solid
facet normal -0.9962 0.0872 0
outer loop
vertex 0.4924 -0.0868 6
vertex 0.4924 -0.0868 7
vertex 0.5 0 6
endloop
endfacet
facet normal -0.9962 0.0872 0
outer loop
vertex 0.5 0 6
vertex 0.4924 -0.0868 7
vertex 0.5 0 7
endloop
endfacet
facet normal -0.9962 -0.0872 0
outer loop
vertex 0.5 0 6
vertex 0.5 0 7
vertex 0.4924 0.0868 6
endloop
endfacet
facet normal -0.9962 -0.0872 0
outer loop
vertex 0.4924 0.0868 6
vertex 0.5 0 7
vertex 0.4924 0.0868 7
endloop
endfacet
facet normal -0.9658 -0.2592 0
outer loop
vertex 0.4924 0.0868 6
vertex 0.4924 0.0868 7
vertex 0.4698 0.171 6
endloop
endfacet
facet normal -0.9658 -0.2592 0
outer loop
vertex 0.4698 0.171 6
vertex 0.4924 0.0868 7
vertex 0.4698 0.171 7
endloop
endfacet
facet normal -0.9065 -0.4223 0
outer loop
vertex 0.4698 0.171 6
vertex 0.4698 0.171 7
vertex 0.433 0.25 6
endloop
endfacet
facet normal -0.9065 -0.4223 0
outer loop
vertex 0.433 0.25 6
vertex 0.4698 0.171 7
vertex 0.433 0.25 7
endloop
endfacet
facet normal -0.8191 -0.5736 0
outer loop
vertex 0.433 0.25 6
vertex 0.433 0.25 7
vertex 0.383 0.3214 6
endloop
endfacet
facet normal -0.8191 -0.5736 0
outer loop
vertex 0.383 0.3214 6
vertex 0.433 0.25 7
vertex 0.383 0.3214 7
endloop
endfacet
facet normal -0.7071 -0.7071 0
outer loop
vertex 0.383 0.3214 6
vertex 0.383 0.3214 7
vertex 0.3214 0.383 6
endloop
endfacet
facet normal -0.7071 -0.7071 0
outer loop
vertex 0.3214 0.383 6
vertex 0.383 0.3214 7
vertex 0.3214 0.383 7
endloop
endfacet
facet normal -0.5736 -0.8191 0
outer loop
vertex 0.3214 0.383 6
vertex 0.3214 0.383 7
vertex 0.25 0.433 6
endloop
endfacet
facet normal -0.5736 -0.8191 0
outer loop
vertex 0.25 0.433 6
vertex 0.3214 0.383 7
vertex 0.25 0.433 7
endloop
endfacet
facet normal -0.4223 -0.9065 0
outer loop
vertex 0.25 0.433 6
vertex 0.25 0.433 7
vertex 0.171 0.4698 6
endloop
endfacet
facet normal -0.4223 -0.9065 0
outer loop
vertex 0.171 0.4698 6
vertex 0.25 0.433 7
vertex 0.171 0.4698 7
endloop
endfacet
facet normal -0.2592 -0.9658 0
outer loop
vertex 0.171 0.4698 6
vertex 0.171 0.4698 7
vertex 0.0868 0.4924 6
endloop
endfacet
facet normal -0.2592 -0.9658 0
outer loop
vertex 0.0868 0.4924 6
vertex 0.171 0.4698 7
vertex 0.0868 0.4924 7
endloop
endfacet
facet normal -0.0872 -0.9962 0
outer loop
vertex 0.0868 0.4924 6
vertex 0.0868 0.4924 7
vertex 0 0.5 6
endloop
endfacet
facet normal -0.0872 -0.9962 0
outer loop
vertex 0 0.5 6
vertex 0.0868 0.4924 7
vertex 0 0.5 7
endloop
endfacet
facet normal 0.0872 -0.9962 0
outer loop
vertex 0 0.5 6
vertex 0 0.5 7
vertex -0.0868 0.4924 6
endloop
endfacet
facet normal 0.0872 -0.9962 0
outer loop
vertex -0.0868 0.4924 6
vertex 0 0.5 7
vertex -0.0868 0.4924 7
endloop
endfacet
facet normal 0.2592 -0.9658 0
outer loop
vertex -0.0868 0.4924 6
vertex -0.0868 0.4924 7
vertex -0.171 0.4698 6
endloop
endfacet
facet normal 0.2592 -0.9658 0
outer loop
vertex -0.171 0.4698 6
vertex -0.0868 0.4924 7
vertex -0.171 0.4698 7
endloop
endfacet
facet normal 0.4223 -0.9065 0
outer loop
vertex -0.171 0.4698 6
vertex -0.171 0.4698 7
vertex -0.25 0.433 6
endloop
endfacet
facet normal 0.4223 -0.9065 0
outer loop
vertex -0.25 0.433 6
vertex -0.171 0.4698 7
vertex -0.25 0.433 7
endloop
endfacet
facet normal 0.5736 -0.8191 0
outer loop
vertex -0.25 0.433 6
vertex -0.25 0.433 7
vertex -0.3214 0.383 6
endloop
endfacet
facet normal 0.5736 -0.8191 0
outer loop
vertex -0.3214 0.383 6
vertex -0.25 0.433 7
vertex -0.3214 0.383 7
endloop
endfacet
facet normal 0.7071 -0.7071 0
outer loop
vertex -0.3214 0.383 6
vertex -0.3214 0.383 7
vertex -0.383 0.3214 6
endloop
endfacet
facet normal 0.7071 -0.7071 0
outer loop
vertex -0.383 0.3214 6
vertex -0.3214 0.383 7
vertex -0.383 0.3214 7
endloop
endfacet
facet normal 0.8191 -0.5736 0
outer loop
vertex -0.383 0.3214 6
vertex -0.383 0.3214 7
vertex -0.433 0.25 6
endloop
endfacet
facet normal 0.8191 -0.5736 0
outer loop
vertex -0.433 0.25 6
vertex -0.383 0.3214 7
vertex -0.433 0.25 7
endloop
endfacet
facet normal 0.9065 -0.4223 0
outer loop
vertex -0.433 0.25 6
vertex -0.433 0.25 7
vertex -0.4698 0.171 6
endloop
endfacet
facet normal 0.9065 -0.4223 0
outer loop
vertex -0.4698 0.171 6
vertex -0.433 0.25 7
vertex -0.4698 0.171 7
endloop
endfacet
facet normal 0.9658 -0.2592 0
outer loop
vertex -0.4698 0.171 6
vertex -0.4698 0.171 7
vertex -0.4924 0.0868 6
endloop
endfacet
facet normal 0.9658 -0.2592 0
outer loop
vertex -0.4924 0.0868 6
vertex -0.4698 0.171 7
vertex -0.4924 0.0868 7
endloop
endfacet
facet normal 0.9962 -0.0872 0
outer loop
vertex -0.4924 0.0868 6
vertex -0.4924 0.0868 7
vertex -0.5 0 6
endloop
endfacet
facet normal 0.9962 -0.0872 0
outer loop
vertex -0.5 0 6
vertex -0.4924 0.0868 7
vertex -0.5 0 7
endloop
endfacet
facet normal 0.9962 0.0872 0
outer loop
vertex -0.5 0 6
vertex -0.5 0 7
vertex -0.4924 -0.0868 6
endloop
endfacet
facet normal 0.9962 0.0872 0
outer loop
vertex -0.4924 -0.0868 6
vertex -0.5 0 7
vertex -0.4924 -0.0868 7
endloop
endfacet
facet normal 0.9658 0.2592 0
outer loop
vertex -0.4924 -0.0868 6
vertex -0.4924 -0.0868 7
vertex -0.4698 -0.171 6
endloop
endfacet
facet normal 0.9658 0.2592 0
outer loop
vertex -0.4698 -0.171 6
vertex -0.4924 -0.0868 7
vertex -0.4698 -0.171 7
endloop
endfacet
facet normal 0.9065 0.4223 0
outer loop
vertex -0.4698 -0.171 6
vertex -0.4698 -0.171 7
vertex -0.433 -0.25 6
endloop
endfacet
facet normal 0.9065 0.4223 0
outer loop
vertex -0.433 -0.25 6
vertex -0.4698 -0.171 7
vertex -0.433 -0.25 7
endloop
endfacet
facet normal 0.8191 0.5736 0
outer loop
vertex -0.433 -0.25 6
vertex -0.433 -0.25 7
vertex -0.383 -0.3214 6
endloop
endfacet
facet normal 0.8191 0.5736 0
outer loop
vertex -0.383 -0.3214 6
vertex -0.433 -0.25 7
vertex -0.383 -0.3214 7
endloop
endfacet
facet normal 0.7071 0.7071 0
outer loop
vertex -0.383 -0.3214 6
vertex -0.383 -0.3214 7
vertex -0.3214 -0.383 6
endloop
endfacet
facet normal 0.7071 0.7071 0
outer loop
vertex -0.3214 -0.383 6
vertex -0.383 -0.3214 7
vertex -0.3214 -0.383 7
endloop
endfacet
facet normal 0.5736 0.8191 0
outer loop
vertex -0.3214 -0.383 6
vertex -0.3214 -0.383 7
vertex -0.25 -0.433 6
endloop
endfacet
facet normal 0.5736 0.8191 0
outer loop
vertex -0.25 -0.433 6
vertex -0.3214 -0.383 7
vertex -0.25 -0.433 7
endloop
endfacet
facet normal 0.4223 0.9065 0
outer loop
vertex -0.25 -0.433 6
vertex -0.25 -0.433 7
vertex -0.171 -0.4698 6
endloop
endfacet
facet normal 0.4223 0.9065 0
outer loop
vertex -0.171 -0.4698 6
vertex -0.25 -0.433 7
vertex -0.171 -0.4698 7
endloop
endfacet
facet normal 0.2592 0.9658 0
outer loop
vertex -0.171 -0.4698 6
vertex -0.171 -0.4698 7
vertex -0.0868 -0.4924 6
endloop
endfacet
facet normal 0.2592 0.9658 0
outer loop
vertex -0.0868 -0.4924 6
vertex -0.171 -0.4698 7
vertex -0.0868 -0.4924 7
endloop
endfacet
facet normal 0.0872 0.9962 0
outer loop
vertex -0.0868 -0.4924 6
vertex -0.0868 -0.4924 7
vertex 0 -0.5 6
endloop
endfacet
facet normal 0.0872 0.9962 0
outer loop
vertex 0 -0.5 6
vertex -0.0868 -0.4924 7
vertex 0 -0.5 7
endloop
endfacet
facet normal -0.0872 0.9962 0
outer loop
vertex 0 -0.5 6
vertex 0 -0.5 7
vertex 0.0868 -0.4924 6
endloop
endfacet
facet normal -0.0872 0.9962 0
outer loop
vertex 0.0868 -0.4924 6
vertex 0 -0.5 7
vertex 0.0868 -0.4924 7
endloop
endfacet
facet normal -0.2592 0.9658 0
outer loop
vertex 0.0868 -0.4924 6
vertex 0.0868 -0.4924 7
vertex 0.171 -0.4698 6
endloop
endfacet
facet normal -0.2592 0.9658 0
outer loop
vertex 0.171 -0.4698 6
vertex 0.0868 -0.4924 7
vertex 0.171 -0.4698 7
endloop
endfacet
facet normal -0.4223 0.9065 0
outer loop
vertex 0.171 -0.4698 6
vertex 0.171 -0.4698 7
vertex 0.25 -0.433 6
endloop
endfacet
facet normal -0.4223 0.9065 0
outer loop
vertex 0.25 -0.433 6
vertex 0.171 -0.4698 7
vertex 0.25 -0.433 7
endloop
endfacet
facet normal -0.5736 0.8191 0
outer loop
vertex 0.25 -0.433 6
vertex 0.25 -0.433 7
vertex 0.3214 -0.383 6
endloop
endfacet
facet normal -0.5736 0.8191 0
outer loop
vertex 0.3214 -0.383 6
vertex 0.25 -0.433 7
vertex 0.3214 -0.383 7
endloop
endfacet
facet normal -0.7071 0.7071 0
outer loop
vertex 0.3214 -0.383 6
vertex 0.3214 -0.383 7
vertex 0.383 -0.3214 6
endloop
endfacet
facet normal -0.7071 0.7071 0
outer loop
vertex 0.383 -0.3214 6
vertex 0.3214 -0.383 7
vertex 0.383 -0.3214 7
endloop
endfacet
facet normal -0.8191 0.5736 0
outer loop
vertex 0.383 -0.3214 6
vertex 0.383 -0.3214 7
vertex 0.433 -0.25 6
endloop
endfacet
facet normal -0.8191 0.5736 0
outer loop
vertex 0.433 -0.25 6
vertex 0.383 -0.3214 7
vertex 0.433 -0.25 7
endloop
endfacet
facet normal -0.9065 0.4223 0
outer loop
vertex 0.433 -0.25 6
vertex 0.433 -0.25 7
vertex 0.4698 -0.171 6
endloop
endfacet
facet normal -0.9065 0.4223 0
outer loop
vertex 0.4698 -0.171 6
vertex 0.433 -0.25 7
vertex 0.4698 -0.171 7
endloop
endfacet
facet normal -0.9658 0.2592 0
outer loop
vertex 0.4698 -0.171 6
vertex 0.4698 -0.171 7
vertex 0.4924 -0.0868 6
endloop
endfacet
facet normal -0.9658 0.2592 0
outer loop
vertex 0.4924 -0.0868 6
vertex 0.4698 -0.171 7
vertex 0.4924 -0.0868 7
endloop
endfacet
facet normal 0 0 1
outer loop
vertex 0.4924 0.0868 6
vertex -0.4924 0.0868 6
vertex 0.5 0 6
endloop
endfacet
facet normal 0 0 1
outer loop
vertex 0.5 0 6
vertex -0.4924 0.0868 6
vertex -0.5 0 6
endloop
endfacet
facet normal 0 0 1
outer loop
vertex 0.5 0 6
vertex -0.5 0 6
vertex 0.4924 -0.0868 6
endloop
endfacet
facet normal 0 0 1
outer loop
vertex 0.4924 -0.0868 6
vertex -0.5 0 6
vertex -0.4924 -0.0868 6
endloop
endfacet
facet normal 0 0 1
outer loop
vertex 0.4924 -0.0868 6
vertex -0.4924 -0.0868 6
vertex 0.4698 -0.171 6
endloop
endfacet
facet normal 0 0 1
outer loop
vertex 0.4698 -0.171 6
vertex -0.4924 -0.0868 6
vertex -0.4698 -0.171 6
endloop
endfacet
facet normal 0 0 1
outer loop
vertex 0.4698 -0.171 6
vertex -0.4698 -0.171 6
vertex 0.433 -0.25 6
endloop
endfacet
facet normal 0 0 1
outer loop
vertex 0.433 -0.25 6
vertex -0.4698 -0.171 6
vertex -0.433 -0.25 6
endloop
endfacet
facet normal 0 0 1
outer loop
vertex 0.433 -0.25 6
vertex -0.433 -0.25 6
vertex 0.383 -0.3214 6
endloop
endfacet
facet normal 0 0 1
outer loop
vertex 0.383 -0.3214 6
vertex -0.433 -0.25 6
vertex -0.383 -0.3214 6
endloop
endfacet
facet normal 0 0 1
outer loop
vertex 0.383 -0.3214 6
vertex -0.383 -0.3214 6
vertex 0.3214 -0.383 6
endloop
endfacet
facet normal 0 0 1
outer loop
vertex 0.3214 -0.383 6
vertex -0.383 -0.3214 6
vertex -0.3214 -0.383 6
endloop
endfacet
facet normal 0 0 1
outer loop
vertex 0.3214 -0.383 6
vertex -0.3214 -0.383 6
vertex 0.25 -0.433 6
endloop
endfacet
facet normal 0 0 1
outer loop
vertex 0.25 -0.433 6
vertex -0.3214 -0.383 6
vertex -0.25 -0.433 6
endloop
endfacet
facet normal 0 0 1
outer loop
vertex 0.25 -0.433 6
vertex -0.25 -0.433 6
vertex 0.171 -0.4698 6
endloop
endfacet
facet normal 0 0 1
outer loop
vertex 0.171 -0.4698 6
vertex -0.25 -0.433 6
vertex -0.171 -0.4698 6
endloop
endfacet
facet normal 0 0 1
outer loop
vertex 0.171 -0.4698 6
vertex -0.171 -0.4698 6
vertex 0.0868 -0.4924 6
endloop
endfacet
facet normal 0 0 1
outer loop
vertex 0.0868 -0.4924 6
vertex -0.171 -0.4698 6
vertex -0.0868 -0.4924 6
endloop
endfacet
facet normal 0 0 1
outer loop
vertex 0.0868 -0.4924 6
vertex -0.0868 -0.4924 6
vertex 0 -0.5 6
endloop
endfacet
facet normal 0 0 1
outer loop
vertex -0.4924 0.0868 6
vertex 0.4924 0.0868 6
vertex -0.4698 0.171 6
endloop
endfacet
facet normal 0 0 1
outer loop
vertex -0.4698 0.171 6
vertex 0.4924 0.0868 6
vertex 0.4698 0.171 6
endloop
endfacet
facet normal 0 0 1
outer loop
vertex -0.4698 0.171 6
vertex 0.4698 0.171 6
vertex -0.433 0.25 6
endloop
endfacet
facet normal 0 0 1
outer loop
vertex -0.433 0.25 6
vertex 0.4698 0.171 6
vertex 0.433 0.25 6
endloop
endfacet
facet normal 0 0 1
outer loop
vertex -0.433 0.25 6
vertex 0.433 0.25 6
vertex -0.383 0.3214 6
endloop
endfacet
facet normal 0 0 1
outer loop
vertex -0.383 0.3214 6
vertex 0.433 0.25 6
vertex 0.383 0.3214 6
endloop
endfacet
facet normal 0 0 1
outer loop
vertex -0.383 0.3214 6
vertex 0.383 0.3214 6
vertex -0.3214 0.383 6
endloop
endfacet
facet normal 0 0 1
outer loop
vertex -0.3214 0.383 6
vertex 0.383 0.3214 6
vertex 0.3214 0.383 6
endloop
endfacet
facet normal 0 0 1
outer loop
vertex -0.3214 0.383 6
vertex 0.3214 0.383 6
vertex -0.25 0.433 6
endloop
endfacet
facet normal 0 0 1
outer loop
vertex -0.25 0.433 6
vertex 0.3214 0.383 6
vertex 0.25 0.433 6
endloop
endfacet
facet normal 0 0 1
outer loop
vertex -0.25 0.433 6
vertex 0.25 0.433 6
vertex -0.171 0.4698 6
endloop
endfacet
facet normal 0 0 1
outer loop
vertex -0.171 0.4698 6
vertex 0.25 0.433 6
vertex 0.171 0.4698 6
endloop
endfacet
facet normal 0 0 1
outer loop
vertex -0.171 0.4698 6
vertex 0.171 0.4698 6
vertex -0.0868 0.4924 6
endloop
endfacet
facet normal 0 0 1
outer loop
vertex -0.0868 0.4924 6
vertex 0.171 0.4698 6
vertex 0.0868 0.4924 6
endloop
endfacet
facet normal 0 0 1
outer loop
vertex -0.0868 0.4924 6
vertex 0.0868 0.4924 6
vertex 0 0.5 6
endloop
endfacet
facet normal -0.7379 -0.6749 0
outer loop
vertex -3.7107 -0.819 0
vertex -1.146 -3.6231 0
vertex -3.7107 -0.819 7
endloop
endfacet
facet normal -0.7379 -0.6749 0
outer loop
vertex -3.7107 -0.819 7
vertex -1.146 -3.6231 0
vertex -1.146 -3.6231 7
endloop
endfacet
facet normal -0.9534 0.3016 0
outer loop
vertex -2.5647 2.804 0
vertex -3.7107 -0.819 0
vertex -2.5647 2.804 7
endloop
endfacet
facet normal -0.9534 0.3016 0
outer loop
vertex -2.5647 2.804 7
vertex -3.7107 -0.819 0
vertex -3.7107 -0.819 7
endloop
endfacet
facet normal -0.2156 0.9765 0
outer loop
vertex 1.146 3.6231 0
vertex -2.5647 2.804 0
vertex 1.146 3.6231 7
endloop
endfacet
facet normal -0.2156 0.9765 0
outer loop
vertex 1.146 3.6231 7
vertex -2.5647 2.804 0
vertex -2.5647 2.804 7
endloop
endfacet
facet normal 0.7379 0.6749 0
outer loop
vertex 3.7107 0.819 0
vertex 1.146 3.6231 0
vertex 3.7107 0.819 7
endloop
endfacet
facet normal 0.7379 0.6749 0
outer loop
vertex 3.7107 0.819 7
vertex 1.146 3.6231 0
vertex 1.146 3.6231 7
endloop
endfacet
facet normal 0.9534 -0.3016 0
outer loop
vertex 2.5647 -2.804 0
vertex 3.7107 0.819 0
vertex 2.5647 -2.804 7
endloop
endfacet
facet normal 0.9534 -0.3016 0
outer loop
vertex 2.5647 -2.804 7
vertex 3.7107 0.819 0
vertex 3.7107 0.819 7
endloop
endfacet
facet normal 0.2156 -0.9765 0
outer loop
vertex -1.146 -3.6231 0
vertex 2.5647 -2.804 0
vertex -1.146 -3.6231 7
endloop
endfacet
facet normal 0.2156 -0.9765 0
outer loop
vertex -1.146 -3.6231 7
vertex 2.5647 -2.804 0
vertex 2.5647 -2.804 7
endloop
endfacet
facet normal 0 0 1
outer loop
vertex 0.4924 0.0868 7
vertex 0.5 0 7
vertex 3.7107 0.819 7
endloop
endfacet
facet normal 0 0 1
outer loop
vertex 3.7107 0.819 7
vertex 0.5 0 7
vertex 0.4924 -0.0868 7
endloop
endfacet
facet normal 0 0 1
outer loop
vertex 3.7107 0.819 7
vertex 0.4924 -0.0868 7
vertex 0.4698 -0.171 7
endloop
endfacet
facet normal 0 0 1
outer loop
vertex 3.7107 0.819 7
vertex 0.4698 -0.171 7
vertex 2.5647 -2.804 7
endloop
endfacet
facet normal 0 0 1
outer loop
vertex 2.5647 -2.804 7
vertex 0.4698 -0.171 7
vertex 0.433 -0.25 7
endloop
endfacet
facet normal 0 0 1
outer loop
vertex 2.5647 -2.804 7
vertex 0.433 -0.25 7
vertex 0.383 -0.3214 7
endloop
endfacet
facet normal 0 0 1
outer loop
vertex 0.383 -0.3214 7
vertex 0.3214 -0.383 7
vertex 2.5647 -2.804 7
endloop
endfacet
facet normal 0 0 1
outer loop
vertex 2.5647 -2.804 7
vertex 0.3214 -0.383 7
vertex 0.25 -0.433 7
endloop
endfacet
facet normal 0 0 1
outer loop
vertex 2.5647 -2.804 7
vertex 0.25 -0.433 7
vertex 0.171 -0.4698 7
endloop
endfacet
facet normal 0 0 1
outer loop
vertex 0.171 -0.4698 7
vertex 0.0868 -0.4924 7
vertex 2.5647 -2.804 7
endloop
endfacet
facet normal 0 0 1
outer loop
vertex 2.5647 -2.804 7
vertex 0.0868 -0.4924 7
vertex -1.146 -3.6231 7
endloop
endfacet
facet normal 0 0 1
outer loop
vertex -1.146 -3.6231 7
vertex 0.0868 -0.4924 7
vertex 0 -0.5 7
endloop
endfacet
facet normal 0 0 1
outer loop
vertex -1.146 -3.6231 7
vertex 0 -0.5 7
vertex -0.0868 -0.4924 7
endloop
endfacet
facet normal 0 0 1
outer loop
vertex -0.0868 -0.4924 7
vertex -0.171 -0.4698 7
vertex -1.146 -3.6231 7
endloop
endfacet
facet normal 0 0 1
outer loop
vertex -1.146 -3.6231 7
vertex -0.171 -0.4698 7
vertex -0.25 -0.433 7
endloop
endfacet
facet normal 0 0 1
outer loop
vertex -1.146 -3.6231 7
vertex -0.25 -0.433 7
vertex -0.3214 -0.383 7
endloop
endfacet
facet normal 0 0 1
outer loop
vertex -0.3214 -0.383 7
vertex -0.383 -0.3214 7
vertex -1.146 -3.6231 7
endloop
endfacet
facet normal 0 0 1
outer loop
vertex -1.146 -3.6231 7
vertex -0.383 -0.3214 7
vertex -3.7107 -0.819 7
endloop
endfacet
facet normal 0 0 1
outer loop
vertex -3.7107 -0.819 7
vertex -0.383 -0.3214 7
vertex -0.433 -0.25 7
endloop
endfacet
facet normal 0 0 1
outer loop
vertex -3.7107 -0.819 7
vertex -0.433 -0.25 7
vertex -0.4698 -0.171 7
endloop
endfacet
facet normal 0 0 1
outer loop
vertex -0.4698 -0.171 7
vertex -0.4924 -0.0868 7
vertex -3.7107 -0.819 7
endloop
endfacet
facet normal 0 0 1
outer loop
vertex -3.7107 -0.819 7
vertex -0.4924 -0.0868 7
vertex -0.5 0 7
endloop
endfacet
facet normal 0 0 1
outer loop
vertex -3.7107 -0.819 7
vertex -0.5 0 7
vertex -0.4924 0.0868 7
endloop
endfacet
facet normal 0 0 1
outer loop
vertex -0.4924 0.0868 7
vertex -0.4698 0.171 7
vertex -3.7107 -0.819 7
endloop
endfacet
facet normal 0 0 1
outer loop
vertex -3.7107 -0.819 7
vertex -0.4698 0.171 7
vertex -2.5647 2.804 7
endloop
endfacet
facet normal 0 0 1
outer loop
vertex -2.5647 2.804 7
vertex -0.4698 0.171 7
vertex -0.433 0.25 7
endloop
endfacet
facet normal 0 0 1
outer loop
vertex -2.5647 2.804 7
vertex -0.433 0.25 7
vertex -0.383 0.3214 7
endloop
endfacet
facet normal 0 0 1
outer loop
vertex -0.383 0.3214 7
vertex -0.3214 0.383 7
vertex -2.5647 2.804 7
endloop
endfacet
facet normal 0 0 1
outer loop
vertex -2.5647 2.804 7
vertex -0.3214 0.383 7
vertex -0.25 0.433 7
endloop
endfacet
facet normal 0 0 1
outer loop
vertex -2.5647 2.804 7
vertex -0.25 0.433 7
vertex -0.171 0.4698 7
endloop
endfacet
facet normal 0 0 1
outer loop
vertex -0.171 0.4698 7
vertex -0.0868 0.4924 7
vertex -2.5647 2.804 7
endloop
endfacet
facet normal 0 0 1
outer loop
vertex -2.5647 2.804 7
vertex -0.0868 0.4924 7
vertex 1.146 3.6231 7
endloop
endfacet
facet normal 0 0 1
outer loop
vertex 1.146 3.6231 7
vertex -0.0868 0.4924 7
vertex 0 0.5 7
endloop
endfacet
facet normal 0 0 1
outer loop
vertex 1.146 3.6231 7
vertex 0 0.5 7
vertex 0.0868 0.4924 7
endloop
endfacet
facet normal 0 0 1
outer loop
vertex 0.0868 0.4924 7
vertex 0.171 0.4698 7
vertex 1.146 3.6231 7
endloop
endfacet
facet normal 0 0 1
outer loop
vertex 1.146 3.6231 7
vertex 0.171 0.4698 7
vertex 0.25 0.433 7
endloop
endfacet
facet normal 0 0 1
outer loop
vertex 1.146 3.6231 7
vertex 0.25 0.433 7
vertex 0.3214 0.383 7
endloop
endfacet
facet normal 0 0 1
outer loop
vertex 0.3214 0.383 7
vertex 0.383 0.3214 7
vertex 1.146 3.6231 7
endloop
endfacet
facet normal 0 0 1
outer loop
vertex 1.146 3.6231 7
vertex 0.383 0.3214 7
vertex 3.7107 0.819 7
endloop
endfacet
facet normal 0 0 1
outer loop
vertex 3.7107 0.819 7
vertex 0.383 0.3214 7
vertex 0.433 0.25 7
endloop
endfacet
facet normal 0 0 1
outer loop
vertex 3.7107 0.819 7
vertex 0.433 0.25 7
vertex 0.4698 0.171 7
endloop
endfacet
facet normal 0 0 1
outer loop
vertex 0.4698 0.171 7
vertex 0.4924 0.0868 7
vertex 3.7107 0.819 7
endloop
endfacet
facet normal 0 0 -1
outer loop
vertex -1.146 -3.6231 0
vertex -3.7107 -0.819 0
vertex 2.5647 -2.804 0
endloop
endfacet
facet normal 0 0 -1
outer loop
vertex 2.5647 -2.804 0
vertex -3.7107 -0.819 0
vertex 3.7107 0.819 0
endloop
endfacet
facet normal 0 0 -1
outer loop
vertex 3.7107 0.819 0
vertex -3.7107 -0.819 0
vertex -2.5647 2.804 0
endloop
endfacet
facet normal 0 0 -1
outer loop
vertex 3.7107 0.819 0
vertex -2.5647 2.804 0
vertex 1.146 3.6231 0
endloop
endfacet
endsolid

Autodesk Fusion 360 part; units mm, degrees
sketch "Sketch1" plane through (0, 0, 0) normal (0, 0, 1) x (1, 0, 0)
  line L0 (2.5647, -2.804) -> (3.7107, 0.819)
  line L1 (3.7107, 0.819) -> (1.146, 3.6231)
  line L2 (1.146, 3.6231) -> (-2.5647, 2.804)
  line L3 (-2.5647, 2.804) -> (-3.7107, -0.819)
  line L4 (-3.7107, -0.819) -> (-1.146, -3.6231)
  line L5 (-1.146, -3.6231) -> (2.5647, -2.804)
  dimension "d1" = 3.8
extrude "Extrude1" add sketch "Sketch1" along normal blind 7
sketch "Sketch2" plane through (0, 0, 7) normal (0, 0, 1) x (-1, 0, 0)
  line L0 (1.146, 3.6231) -> (-2.5647, 2.804)
  line L1 (-2.5647, 2.804) -> (-3.7107, -0.819)
  line L2 (-3.7107, -0.819) -> (-1.146, -3.6231)
  line L3 (-1.146, -3.6231) -> (2.5647, -2.804)
  line L4 (2.5647, -2.804) -> (3.7107, 0.819)
  line L5 (3.7107, 0.819) -> (1.146, 3.6231)
  circle A0 centre (0, 0) radius 0.5
  dimension "d6" = 1
extrude "Extrude3" cut sketch "Sketch2" against normal blind 1 contours A0
equation "d1 = polygon_side"
equation "d2 = polygon_height"
equation "polygon_side = 3.8 mm"
equation "polygon_height = 7 mm"
equation "d6 = nail_radius * 2"
equation "nail_radius = 0.5 mm"
equation "nail_depth = 1 mm"
equation "d11 = -nail_depth"
